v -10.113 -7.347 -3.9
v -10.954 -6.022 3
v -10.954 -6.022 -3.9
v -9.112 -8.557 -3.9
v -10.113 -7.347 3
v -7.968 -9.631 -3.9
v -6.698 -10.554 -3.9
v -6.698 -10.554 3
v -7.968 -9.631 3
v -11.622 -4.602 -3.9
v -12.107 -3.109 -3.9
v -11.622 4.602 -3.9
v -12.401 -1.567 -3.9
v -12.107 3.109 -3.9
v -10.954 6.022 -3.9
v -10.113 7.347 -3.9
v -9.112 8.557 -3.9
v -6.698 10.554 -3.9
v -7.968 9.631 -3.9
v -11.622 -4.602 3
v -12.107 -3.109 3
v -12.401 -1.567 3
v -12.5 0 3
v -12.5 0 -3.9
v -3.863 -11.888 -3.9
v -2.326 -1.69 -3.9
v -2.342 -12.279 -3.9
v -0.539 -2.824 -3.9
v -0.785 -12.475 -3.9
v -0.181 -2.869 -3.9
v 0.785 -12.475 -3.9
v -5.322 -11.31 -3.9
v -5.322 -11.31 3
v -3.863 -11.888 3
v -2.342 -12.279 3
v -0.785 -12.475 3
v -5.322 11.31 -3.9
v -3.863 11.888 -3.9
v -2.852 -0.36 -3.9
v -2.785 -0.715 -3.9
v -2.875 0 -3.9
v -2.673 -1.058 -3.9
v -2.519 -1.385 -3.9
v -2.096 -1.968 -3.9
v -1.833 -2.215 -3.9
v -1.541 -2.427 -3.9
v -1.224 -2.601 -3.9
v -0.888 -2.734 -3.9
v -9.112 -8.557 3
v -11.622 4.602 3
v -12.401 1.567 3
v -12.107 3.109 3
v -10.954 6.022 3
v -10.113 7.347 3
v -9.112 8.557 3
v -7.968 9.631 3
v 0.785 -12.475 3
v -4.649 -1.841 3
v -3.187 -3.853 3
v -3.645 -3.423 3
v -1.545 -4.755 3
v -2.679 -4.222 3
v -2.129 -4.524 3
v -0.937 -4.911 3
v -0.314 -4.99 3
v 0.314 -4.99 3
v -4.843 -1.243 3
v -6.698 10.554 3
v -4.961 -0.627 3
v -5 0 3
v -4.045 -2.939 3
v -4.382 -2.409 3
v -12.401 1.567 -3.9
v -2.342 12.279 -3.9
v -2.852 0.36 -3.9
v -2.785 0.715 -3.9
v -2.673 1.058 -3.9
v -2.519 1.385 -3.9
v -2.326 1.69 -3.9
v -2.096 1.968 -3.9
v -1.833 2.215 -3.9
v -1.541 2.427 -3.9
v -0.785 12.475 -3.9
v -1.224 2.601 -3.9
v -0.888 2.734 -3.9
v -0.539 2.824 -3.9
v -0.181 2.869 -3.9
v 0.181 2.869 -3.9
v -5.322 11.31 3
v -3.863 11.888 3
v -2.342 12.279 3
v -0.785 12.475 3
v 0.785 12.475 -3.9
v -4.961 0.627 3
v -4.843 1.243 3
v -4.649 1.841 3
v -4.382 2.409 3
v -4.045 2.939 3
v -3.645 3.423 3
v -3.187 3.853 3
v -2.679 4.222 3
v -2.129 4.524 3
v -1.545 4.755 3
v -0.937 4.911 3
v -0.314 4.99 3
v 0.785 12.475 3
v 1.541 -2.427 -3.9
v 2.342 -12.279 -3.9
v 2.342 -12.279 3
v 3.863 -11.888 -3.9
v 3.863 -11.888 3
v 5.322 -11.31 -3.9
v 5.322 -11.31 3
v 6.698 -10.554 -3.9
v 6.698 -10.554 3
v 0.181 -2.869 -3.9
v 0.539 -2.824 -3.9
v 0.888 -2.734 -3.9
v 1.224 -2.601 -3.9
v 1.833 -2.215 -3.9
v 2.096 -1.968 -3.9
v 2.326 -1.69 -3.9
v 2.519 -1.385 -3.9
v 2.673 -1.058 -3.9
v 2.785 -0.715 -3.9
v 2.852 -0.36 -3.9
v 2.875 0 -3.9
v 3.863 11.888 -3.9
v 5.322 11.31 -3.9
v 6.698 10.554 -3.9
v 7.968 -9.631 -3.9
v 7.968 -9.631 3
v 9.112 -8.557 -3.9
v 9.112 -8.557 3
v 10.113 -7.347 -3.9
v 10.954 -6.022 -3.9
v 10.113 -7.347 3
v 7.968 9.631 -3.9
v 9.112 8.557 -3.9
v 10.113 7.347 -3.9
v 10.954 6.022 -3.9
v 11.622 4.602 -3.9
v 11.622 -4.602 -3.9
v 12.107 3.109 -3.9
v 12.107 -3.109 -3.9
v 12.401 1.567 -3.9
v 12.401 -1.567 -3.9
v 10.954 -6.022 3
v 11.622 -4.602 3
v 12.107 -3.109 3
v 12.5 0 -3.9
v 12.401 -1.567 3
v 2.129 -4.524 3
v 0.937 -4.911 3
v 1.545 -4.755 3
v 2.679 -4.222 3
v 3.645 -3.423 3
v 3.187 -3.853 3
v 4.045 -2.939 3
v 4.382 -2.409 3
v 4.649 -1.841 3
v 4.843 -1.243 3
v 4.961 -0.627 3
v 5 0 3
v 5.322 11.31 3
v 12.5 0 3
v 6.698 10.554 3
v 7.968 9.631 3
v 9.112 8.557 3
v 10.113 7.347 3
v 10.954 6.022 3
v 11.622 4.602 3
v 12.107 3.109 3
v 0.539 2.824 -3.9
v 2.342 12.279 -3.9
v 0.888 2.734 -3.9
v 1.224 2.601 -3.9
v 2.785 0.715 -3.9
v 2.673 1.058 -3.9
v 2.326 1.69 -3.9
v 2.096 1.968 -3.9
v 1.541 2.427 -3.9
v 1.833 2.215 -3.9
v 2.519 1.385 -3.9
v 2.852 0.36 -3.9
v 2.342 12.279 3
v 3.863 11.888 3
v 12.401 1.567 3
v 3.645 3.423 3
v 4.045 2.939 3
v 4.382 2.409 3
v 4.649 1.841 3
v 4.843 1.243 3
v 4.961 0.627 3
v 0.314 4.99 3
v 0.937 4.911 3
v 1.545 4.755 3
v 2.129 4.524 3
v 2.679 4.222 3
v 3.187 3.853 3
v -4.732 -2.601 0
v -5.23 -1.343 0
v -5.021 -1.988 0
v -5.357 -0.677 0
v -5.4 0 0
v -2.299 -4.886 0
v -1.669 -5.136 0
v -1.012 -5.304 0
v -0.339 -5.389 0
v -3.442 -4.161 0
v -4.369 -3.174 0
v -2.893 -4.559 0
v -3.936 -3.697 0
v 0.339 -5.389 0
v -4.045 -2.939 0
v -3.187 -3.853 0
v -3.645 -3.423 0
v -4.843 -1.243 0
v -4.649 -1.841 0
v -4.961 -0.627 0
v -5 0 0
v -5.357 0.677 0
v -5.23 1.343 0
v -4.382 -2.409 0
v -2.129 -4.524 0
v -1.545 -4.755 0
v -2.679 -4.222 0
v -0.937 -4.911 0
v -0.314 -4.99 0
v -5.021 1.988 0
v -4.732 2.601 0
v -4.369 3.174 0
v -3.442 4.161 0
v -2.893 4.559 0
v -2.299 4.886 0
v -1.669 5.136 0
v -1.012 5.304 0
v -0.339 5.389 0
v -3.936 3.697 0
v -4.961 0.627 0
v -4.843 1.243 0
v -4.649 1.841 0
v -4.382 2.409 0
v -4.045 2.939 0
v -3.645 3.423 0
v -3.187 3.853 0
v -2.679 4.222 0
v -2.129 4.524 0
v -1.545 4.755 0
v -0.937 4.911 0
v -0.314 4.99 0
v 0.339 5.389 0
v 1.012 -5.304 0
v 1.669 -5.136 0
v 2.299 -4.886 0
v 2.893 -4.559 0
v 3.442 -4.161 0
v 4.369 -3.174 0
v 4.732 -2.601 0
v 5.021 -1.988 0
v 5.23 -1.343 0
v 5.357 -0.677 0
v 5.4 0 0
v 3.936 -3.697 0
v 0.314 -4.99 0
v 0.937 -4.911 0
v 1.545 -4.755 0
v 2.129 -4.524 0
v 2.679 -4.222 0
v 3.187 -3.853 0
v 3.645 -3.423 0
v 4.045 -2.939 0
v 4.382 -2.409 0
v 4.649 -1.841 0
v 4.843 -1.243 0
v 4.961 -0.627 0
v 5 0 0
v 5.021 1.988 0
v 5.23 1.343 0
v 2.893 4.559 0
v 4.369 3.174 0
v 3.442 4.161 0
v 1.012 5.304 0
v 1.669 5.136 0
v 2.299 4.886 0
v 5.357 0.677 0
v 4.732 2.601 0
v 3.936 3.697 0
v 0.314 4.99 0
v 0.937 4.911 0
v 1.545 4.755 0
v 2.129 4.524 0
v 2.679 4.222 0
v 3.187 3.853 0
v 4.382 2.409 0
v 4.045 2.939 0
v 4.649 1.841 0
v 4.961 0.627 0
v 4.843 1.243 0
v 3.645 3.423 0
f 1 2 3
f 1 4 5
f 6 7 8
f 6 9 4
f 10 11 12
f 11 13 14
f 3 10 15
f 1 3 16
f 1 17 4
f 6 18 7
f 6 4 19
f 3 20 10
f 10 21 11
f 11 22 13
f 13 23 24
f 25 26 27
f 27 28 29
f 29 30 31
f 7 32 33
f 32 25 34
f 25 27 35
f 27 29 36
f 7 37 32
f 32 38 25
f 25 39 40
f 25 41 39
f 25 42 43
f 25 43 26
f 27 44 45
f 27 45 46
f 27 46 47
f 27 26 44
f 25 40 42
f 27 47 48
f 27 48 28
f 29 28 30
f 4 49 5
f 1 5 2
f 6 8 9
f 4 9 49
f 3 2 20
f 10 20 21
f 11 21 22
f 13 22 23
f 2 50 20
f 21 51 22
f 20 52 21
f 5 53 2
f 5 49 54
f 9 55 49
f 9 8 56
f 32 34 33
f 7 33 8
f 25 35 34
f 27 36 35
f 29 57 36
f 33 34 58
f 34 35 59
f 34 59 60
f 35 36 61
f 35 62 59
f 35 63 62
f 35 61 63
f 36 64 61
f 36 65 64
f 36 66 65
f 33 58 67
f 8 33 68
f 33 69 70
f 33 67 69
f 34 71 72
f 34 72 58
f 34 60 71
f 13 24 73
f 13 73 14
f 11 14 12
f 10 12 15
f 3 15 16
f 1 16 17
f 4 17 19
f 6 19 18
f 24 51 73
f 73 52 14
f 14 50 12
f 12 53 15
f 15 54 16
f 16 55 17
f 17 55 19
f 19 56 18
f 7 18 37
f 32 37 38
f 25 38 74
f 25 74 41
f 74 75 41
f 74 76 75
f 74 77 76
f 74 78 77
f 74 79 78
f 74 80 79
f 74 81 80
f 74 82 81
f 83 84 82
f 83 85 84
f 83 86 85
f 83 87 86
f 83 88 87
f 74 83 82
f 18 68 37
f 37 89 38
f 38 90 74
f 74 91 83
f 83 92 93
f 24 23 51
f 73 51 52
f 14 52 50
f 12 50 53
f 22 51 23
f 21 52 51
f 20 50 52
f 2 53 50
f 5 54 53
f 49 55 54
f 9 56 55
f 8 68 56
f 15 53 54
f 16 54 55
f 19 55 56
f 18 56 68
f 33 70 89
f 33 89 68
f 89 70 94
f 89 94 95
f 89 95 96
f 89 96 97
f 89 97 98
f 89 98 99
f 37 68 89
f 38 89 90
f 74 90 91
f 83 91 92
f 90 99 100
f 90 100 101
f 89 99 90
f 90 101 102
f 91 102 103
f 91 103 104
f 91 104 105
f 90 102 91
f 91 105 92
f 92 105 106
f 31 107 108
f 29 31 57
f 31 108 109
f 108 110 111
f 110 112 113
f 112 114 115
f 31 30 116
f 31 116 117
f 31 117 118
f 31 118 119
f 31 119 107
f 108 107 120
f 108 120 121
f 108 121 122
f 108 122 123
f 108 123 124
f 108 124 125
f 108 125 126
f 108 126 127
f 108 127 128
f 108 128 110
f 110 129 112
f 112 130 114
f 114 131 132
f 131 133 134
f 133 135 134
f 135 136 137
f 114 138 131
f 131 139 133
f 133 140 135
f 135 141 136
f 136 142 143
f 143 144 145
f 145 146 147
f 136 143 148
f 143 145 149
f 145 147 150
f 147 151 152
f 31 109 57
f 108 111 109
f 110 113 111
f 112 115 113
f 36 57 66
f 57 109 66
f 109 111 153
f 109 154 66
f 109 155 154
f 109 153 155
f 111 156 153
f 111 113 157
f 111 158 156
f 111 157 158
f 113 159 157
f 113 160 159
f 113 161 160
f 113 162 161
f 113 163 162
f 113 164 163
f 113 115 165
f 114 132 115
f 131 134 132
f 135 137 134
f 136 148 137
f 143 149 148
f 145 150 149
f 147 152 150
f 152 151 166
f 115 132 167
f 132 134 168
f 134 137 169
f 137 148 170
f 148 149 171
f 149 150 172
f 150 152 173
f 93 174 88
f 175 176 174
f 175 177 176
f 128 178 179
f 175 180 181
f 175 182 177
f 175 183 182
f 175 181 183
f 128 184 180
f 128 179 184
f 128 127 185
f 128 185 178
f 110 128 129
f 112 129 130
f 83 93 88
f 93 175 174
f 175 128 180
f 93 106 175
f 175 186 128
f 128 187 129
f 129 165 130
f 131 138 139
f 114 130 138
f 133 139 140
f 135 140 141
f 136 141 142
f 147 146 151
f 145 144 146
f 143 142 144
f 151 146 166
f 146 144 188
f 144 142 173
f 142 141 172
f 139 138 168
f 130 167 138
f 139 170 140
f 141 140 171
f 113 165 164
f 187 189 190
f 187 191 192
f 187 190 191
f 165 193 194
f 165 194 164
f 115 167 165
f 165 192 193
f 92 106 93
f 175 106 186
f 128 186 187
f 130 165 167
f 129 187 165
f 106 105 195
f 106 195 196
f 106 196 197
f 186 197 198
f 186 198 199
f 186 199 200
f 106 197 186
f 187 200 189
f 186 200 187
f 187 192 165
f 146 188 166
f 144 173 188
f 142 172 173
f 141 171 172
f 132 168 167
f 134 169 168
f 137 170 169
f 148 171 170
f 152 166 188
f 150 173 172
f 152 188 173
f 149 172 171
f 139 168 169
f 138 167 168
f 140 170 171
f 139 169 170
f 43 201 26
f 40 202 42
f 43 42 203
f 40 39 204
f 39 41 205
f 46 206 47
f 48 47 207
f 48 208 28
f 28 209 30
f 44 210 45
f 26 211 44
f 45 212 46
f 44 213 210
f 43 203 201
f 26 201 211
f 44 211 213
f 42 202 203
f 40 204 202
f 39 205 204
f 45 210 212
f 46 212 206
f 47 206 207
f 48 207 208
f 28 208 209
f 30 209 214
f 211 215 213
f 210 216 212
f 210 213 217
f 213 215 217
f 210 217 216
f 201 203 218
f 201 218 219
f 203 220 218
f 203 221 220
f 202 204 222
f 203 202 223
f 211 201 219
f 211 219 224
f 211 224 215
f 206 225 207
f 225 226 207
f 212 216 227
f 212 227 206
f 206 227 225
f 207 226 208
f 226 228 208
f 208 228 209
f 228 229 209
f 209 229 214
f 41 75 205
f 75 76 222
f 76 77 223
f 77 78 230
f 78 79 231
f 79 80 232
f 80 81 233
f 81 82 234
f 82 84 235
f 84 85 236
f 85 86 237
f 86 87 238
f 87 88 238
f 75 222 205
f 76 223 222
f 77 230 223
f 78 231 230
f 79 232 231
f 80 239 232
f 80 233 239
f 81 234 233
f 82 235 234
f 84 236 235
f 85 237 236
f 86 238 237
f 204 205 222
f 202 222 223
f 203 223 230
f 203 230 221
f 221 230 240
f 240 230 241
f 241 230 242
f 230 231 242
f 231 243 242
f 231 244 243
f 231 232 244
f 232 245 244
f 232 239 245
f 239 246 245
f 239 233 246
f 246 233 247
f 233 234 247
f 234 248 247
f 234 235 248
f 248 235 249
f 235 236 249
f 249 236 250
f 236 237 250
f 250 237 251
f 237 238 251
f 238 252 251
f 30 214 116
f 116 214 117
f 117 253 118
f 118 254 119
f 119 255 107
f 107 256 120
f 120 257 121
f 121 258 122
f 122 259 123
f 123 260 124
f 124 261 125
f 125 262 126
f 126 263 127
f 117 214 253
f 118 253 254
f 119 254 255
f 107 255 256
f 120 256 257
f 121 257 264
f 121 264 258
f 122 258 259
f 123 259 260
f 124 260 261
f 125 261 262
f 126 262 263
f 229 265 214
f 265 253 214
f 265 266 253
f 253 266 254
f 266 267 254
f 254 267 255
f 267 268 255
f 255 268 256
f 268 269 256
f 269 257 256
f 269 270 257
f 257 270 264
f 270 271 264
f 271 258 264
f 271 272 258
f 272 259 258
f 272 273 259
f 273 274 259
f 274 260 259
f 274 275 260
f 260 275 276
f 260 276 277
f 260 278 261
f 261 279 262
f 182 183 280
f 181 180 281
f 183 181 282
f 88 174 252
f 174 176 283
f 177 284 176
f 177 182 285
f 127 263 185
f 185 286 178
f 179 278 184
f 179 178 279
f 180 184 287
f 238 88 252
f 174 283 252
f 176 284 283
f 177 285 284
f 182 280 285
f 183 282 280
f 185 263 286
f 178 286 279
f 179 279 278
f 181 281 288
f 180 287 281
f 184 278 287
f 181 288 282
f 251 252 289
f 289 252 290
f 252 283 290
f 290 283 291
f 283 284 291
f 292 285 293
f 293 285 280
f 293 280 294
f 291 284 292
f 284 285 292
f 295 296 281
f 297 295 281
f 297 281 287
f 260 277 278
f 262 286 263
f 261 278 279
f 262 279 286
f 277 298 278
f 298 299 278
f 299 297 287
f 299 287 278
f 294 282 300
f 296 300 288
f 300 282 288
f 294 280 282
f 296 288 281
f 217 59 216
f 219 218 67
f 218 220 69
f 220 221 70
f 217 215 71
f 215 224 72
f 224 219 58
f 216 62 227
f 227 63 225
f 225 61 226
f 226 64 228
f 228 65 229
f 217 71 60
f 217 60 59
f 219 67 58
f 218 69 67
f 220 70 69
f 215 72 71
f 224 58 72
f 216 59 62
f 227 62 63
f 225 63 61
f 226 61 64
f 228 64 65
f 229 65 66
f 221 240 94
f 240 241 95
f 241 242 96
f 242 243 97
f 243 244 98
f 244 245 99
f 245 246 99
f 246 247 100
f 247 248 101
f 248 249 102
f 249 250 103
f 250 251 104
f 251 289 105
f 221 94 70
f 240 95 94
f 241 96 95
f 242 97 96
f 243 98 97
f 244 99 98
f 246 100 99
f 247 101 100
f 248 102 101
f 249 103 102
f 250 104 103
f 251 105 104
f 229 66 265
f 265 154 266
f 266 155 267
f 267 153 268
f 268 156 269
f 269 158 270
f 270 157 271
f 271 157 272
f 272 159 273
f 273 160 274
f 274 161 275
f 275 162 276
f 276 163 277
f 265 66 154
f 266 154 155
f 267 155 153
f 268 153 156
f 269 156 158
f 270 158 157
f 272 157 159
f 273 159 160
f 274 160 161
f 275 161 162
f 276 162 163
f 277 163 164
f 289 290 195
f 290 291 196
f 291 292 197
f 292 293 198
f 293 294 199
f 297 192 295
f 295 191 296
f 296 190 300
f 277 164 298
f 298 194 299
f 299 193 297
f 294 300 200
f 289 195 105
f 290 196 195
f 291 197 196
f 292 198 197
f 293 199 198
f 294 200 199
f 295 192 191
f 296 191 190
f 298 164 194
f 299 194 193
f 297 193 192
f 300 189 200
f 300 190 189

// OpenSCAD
$fn = 50;

difference() {
	union() {
		translate(v = [0, 0, -3.9000000000000004]) {
			cylinder(h = 6.9, r = 12.5);
		}
		#translate(v = [0, 0, -6.9]) {
			cylinder(h = 6.9, r = 2.875);
		}
	}
	union() {
		translate(v = [0, 0, 0]) {
			rotate(a = [0, 0, 0]) {
				difference() {
					union() {
						translate(v = [0, 0, -6.9]) {
							cylinder(h = 6.9, r = 2.6);
						}
						translate(v = [0, 0, -3.9]) {
							cylinder(h = 3.9, r1 = 2.875, r2 = 5.4);
						}
						translate(v = [0, 0, -6.9]) {
							cylinder(h = 6.9, r = 2.875);
						}
						translate(v = [0, 0, -6.9]) {
							cylinder(h = 6.9, r = 2.6);
						}
					}
					union();
				}
			}
		}
		#cylinder(h = 3, r = 5.0);
	}
}
